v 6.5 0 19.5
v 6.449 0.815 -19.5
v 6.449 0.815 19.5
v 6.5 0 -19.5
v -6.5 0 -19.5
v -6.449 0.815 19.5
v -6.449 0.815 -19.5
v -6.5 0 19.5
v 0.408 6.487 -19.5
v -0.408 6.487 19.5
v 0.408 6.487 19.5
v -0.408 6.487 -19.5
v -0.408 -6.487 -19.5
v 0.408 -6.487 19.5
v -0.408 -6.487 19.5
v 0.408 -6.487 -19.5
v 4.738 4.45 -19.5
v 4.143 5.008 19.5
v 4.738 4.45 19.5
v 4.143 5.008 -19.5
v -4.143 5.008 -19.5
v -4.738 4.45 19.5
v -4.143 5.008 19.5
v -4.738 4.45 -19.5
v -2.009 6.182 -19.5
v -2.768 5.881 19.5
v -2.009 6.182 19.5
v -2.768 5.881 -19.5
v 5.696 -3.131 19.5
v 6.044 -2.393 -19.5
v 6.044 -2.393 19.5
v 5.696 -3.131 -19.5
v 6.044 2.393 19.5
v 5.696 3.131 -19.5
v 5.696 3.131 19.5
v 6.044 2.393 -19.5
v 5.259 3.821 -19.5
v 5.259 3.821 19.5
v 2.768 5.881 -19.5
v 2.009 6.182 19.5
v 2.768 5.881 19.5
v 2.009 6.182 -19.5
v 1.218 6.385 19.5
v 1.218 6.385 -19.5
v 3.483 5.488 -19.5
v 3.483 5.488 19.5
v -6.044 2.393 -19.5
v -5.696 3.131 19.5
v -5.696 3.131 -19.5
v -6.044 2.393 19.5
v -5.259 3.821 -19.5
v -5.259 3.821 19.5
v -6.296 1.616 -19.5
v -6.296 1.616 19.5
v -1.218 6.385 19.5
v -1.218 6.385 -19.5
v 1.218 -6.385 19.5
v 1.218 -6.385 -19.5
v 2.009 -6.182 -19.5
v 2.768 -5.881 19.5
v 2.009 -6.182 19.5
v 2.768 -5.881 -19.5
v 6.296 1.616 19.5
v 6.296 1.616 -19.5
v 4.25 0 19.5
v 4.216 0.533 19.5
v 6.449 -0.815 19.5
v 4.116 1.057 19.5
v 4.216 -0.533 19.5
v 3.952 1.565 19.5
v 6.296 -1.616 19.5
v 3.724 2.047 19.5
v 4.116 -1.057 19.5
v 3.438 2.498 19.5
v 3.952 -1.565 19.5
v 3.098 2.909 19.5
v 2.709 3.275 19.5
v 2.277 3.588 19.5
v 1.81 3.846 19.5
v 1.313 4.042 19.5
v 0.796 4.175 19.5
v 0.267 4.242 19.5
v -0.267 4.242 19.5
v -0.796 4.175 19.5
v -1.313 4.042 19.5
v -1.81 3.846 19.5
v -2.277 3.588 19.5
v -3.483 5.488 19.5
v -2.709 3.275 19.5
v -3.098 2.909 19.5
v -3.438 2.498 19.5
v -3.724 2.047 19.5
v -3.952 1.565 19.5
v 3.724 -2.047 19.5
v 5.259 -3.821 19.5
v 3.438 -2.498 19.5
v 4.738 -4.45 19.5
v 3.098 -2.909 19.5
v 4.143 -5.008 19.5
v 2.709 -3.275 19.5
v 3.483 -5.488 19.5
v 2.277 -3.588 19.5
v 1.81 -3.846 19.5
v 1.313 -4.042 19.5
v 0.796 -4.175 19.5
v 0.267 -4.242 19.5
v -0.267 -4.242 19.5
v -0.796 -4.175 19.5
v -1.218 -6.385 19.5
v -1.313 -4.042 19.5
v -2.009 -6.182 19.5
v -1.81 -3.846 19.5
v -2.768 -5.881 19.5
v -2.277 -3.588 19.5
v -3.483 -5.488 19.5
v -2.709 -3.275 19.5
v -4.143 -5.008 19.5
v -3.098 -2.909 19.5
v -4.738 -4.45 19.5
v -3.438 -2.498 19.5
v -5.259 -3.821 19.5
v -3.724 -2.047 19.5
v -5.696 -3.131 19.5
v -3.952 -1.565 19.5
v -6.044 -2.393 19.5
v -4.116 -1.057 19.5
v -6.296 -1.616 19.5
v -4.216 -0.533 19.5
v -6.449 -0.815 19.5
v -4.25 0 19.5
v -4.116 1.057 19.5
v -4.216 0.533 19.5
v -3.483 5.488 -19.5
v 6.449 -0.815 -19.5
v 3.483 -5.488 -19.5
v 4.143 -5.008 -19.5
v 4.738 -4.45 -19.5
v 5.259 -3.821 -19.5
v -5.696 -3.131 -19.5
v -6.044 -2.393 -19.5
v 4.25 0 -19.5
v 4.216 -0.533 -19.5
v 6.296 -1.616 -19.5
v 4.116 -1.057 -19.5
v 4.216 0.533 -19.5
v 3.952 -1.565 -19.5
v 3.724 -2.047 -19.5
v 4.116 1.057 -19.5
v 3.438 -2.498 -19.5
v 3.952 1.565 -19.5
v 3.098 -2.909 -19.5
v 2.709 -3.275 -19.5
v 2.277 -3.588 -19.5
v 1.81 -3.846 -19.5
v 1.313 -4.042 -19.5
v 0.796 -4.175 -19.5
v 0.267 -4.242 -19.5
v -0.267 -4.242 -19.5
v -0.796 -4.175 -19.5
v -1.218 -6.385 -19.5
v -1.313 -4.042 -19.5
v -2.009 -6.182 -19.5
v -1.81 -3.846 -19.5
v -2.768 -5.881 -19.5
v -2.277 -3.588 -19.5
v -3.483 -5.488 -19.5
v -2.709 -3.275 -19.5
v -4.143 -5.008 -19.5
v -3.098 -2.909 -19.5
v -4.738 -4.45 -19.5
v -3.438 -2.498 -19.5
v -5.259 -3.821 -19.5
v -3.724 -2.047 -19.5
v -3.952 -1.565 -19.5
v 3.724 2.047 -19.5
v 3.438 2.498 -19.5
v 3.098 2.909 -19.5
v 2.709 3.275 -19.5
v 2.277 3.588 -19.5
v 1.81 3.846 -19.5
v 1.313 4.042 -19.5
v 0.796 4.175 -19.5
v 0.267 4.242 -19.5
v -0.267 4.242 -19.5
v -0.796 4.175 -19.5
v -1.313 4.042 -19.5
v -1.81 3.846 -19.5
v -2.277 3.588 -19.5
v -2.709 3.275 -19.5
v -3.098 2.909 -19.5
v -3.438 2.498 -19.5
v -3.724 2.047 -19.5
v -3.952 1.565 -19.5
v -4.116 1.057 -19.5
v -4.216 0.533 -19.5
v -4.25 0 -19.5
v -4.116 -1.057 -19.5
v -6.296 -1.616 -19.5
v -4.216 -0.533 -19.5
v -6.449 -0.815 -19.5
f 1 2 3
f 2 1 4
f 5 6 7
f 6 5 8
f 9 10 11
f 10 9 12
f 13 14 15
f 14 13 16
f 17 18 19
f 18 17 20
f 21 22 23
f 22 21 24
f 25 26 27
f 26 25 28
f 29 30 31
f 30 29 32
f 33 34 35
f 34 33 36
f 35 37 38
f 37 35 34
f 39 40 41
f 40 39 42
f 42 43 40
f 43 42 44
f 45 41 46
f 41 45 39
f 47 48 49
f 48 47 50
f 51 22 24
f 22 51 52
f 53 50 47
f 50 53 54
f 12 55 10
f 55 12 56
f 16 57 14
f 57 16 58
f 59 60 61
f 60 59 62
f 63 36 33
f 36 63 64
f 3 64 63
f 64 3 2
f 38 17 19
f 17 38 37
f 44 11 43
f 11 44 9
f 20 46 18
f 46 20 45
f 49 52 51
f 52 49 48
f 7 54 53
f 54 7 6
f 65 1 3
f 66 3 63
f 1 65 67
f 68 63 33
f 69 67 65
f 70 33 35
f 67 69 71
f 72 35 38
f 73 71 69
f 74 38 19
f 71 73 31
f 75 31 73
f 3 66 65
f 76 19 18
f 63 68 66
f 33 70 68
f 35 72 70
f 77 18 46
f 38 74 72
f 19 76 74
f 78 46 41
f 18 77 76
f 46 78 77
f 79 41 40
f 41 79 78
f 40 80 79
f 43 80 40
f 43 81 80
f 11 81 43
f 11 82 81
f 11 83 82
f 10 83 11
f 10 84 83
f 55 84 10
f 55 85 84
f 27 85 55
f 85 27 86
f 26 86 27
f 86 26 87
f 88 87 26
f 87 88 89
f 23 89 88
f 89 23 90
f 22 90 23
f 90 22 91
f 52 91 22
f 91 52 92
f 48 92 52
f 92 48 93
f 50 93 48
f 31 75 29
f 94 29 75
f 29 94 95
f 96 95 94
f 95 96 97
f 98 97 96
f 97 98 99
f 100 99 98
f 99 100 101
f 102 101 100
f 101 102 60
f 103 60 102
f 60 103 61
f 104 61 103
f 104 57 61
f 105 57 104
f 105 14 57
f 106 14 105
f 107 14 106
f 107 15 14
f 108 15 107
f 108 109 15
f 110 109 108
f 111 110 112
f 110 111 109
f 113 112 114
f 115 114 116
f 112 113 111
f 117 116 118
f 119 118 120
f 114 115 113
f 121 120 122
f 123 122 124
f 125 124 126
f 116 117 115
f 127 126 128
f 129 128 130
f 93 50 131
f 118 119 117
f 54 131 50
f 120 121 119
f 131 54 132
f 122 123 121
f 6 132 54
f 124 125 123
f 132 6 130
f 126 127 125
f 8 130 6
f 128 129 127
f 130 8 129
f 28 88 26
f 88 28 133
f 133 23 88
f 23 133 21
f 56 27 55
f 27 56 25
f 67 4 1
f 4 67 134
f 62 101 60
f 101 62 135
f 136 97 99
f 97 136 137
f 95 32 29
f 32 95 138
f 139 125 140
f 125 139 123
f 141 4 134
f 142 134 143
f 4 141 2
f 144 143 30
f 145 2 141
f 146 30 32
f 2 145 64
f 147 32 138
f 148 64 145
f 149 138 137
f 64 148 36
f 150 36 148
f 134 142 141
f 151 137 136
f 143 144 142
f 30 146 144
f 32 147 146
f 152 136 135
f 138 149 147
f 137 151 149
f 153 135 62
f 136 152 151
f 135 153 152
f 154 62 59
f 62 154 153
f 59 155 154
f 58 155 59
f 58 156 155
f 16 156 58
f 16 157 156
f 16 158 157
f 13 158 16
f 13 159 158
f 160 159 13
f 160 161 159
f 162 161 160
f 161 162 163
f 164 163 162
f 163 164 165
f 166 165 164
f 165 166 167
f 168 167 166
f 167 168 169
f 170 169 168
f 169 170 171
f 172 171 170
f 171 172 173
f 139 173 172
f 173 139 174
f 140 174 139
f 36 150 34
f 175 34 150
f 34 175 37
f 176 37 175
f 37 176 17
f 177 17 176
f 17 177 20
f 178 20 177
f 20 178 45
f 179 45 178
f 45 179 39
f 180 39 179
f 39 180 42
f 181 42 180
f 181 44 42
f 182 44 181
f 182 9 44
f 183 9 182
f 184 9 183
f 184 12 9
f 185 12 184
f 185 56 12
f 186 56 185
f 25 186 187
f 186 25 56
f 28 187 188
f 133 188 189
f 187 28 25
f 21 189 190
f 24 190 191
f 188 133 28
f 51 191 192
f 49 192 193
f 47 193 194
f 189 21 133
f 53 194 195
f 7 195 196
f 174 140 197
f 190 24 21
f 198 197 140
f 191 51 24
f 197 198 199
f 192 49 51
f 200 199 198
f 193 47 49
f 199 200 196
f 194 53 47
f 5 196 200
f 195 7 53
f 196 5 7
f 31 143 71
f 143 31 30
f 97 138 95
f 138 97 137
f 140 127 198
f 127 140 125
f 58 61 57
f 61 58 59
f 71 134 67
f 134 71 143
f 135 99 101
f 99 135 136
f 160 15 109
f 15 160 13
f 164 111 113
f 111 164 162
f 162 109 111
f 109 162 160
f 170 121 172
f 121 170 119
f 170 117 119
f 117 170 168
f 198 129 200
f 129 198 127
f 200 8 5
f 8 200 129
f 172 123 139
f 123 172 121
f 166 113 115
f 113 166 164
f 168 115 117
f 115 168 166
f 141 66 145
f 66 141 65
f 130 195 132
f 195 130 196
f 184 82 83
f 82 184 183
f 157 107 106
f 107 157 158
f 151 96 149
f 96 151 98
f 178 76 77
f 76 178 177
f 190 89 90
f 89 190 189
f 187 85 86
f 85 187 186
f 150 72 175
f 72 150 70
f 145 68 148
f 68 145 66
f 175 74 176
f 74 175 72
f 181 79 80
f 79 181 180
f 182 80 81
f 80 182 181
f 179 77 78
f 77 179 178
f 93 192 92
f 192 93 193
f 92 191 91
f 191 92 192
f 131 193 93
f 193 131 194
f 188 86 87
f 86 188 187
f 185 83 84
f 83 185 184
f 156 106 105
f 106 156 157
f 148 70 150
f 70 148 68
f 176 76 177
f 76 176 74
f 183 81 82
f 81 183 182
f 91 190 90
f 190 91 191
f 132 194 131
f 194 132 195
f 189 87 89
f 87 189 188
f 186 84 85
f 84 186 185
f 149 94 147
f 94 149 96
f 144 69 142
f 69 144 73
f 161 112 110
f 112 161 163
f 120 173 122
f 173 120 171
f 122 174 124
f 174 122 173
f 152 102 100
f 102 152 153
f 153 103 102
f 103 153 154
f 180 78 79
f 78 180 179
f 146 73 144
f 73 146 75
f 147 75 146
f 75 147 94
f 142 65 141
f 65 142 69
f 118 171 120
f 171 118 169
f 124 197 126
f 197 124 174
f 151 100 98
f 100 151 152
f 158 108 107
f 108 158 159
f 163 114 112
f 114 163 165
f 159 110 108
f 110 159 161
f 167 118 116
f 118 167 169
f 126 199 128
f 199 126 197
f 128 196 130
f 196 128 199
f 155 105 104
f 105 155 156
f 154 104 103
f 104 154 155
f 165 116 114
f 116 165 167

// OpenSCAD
$fn = 50;


difference() {
	union() {
		translate(v = [0, 0, -19.5000000000]) {
			cylinder(h = 39, r = 6.5000000000);
		}
	}
	union() {
		translate(v = [0, 0, -100.0000000000]) {
			cylinder(h = 200, r = 4.2500000000);
		}
	}
}
